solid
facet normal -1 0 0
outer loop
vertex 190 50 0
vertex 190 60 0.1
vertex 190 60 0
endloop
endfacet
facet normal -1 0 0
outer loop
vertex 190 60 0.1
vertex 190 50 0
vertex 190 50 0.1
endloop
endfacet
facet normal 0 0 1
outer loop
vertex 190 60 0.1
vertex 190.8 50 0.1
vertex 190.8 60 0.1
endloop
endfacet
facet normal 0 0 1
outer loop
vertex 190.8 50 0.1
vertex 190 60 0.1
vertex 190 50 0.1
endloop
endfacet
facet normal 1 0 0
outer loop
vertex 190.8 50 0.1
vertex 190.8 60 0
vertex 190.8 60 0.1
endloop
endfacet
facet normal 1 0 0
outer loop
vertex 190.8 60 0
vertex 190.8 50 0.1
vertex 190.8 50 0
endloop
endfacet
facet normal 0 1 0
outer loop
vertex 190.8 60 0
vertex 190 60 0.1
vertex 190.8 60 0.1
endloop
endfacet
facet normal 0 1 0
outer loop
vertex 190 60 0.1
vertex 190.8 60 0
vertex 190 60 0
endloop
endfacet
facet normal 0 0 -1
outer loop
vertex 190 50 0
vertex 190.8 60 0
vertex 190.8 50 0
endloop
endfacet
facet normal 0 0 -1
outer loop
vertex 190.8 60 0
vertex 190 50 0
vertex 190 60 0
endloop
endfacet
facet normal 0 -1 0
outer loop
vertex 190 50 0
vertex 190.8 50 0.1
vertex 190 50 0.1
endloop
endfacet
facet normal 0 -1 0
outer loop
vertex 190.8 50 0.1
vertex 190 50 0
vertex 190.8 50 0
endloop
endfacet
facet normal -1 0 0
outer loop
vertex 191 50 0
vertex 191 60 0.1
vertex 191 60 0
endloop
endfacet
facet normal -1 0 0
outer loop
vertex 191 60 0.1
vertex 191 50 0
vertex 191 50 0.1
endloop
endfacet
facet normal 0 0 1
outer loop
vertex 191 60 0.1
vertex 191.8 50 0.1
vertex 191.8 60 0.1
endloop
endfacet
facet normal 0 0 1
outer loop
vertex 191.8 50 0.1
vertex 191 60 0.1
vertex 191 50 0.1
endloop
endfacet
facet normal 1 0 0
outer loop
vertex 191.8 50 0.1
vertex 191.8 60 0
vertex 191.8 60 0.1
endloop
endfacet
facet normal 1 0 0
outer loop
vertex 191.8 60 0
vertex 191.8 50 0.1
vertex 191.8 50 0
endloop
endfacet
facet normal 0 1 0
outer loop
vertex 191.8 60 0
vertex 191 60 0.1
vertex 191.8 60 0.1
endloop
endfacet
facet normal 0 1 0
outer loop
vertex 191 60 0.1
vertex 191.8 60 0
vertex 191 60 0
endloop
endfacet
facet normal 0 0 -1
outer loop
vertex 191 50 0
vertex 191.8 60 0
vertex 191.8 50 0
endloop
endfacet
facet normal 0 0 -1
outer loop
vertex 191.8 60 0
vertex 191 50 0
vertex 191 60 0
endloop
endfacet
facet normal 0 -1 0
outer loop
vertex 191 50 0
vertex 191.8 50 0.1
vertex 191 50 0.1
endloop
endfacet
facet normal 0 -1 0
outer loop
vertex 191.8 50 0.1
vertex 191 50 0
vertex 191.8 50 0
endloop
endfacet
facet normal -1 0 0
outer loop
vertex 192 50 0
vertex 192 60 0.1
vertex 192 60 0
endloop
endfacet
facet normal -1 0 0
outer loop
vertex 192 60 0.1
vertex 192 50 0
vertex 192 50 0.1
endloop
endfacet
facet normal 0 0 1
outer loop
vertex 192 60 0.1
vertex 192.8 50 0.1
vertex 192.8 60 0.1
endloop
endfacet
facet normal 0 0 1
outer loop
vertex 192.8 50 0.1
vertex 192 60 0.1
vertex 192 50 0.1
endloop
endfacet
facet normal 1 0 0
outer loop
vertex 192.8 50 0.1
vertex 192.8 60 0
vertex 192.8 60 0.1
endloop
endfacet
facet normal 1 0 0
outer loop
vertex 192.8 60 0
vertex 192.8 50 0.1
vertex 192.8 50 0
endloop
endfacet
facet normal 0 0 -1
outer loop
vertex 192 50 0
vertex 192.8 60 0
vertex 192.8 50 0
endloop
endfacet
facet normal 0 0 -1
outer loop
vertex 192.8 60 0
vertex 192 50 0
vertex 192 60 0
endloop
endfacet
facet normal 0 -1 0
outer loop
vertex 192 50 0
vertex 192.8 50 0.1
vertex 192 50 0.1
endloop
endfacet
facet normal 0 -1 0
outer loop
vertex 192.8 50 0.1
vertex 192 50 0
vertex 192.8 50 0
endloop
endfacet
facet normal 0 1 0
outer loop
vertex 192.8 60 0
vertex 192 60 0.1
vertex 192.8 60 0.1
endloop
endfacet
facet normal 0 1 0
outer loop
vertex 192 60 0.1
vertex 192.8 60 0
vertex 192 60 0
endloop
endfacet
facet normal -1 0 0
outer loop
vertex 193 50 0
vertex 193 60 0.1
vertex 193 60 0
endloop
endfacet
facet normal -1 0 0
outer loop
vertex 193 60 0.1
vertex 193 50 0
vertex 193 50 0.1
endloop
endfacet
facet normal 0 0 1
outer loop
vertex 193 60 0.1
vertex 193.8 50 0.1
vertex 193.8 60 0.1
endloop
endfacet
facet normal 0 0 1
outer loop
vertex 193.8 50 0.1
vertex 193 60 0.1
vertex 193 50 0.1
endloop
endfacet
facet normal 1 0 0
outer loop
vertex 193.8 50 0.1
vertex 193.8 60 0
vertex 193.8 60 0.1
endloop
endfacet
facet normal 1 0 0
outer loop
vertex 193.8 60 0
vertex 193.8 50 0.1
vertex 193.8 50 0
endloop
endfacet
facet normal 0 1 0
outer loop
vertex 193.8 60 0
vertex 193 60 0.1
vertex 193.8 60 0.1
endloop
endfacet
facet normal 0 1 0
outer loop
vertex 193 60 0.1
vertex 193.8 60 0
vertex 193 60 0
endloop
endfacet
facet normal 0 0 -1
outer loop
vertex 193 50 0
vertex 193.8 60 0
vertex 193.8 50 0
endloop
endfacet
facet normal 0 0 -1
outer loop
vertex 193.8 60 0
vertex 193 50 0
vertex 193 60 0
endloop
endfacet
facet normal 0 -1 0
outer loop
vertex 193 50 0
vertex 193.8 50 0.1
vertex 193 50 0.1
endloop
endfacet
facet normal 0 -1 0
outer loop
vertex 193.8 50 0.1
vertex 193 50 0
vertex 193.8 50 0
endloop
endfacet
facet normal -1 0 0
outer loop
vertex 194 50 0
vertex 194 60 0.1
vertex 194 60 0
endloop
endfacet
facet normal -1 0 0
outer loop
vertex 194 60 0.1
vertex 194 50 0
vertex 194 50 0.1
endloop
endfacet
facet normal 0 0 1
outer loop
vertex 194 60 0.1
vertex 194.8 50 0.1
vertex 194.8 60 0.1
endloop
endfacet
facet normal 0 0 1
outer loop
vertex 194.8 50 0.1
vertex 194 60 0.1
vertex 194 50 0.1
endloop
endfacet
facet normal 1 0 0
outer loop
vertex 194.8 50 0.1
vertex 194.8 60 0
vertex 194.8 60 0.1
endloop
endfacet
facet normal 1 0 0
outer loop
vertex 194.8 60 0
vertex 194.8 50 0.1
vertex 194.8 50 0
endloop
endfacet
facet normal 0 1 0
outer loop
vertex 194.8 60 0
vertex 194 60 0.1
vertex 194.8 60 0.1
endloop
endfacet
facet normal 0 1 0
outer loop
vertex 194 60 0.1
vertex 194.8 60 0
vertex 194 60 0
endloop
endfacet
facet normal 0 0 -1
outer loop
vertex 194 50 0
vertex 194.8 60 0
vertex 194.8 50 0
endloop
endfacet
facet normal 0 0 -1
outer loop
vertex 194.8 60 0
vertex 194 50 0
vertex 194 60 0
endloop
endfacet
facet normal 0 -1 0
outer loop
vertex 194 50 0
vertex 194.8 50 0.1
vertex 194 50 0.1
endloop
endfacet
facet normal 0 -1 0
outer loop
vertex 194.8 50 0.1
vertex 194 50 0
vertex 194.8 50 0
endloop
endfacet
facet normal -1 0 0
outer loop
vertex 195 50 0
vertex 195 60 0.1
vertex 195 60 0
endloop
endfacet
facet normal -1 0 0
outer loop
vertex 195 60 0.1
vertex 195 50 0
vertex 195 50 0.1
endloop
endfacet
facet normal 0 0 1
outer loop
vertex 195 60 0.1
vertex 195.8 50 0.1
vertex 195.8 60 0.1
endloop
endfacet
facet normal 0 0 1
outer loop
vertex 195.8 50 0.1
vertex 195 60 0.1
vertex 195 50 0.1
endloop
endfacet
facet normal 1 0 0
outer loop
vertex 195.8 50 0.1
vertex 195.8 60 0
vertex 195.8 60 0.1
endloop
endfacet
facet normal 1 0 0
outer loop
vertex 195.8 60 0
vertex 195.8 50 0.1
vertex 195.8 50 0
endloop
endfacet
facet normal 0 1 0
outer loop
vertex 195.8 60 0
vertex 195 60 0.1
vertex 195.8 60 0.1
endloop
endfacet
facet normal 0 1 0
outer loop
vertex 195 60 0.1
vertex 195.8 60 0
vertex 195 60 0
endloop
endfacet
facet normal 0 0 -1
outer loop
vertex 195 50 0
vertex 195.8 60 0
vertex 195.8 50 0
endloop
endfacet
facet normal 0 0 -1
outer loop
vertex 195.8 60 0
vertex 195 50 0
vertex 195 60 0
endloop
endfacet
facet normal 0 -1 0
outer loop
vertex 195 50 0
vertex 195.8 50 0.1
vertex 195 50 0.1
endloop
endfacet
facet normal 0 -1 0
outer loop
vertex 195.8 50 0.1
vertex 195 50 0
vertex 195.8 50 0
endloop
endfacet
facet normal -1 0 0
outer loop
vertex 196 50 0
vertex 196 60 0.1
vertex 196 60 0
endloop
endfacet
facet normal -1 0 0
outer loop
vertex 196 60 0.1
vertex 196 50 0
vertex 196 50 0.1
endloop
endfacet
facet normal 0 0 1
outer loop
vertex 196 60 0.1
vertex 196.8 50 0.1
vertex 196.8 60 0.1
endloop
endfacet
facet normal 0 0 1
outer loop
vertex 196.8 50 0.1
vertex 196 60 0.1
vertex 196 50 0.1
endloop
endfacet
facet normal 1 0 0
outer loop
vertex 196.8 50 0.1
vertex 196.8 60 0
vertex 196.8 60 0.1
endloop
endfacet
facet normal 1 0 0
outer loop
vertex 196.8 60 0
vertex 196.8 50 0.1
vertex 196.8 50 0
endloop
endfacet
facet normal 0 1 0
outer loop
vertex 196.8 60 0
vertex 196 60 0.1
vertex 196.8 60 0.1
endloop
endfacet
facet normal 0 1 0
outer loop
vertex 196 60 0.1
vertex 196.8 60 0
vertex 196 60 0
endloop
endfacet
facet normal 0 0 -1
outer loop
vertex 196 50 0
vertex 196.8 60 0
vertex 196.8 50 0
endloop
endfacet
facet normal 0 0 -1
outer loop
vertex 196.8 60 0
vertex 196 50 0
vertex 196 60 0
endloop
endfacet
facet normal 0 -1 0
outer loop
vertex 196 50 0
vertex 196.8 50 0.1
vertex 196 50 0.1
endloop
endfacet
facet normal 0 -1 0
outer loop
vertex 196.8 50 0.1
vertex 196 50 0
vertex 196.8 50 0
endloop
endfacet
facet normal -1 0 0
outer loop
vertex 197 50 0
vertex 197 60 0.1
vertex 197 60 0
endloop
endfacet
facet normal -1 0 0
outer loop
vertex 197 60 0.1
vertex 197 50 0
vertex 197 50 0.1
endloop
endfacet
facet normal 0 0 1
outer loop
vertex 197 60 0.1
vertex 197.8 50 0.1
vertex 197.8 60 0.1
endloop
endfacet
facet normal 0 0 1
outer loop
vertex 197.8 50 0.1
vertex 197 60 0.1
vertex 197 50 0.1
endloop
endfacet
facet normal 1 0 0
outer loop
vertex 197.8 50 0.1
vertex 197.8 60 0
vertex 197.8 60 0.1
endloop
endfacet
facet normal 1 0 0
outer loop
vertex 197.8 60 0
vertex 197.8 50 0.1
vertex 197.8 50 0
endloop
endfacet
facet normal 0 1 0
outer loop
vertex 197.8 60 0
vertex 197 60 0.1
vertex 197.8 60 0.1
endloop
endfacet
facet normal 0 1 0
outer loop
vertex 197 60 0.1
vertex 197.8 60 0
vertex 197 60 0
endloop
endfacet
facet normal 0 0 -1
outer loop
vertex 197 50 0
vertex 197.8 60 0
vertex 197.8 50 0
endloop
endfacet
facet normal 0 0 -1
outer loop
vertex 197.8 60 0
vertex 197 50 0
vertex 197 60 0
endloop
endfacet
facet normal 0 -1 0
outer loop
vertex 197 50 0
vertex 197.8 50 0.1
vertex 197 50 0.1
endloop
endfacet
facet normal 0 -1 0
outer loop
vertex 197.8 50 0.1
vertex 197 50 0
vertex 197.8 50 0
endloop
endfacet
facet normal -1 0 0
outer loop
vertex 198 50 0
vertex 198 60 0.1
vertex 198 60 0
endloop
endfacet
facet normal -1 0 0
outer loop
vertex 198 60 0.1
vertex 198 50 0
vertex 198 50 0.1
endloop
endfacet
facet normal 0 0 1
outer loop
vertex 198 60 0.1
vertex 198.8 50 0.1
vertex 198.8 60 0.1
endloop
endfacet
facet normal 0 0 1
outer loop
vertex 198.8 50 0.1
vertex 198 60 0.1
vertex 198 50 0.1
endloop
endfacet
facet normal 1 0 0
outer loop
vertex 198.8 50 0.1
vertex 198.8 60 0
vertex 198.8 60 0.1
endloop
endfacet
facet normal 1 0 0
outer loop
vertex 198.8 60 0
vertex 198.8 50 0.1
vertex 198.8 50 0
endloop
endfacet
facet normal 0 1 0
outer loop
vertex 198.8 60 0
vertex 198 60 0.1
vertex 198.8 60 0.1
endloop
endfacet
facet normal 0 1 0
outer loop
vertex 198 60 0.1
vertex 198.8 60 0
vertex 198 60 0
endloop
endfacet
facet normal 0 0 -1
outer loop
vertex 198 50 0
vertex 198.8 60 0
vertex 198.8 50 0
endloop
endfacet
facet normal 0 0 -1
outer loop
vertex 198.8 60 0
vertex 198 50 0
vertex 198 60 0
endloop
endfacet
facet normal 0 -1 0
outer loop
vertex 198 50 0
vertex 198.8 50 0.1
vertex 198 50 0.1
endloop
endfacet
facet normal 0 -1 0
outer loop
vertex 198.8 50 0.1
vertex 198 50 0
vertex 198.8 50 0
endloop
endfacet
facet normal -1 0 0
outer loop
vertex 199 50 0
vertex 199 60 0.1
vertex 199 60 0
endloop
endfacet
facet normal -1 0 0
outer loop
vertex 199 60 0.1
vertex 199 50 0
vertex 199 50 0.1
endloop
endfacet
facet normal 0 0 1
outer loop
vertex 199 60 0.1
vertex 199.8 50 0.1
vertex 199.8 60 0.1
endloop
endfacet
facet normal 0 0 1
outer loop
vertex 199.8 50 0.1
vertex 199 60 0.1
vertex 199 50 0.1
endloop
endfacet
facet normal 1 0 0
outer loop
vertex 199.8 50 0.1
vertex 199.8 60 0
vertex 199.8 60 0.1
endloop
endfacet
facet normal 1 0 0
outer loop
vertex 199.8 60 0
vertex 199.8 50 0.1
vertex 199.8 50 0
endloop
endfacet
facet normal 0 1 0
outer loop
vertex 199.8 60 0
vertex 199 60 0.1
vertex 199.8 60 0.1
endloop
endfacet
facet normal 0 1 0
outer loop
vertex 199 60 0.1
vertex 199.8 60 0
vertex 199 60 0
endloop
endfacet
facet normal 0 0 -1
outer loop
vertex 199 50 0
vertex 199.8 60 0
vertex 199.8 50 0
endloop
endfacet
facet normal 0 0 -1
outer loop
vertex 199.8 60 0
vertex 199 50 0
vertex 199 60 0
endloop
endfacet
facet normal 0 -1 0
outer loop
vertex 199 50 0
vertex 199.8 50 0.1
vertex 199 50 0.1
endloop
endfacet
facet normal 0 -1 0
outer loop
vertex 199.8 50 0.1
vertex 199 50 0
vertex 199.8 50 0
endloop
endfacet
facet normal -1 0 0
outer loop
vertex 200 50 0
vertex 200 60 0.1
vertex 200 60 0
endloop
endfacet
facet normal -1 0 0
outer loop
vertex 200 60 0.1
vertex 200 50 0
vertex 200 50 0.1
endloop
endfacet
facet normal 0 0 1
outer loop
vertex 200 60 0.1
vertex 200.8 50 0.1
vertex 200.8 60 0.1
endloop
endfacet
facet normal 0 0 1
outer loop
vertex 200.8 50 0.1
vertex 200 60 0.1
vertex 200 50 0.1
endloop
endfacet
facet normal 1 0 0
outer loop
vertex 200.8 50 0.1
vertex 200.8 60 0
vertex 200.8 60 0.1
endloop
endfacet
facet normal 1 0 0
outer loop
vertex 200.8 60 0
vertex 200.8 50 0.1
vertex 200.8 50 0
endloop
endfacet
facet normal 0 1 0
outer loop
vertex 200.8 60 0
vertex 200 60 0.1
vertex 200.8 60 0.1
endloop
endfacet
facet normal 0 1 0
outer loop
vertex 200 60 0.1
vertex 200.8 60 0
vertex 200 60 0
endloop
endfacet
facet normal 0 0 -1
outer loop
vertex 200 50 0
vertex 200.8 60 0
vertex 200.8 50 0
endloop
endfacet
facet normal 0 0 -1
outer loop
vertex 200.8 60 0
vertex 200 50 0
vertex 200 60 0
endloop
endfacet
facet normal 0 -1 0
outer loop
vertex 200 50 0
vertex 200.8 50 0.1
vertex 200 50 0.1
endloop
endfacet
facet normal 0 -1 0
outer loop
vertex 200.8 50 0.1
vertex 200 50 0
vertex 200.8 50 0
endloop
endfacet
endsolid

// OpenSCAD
translate([10+180,10+40,0])
        for (i = [0 : 10]){
            translate([i,0,0])
                cube(size = [0.8,10,0.1]);
    }
